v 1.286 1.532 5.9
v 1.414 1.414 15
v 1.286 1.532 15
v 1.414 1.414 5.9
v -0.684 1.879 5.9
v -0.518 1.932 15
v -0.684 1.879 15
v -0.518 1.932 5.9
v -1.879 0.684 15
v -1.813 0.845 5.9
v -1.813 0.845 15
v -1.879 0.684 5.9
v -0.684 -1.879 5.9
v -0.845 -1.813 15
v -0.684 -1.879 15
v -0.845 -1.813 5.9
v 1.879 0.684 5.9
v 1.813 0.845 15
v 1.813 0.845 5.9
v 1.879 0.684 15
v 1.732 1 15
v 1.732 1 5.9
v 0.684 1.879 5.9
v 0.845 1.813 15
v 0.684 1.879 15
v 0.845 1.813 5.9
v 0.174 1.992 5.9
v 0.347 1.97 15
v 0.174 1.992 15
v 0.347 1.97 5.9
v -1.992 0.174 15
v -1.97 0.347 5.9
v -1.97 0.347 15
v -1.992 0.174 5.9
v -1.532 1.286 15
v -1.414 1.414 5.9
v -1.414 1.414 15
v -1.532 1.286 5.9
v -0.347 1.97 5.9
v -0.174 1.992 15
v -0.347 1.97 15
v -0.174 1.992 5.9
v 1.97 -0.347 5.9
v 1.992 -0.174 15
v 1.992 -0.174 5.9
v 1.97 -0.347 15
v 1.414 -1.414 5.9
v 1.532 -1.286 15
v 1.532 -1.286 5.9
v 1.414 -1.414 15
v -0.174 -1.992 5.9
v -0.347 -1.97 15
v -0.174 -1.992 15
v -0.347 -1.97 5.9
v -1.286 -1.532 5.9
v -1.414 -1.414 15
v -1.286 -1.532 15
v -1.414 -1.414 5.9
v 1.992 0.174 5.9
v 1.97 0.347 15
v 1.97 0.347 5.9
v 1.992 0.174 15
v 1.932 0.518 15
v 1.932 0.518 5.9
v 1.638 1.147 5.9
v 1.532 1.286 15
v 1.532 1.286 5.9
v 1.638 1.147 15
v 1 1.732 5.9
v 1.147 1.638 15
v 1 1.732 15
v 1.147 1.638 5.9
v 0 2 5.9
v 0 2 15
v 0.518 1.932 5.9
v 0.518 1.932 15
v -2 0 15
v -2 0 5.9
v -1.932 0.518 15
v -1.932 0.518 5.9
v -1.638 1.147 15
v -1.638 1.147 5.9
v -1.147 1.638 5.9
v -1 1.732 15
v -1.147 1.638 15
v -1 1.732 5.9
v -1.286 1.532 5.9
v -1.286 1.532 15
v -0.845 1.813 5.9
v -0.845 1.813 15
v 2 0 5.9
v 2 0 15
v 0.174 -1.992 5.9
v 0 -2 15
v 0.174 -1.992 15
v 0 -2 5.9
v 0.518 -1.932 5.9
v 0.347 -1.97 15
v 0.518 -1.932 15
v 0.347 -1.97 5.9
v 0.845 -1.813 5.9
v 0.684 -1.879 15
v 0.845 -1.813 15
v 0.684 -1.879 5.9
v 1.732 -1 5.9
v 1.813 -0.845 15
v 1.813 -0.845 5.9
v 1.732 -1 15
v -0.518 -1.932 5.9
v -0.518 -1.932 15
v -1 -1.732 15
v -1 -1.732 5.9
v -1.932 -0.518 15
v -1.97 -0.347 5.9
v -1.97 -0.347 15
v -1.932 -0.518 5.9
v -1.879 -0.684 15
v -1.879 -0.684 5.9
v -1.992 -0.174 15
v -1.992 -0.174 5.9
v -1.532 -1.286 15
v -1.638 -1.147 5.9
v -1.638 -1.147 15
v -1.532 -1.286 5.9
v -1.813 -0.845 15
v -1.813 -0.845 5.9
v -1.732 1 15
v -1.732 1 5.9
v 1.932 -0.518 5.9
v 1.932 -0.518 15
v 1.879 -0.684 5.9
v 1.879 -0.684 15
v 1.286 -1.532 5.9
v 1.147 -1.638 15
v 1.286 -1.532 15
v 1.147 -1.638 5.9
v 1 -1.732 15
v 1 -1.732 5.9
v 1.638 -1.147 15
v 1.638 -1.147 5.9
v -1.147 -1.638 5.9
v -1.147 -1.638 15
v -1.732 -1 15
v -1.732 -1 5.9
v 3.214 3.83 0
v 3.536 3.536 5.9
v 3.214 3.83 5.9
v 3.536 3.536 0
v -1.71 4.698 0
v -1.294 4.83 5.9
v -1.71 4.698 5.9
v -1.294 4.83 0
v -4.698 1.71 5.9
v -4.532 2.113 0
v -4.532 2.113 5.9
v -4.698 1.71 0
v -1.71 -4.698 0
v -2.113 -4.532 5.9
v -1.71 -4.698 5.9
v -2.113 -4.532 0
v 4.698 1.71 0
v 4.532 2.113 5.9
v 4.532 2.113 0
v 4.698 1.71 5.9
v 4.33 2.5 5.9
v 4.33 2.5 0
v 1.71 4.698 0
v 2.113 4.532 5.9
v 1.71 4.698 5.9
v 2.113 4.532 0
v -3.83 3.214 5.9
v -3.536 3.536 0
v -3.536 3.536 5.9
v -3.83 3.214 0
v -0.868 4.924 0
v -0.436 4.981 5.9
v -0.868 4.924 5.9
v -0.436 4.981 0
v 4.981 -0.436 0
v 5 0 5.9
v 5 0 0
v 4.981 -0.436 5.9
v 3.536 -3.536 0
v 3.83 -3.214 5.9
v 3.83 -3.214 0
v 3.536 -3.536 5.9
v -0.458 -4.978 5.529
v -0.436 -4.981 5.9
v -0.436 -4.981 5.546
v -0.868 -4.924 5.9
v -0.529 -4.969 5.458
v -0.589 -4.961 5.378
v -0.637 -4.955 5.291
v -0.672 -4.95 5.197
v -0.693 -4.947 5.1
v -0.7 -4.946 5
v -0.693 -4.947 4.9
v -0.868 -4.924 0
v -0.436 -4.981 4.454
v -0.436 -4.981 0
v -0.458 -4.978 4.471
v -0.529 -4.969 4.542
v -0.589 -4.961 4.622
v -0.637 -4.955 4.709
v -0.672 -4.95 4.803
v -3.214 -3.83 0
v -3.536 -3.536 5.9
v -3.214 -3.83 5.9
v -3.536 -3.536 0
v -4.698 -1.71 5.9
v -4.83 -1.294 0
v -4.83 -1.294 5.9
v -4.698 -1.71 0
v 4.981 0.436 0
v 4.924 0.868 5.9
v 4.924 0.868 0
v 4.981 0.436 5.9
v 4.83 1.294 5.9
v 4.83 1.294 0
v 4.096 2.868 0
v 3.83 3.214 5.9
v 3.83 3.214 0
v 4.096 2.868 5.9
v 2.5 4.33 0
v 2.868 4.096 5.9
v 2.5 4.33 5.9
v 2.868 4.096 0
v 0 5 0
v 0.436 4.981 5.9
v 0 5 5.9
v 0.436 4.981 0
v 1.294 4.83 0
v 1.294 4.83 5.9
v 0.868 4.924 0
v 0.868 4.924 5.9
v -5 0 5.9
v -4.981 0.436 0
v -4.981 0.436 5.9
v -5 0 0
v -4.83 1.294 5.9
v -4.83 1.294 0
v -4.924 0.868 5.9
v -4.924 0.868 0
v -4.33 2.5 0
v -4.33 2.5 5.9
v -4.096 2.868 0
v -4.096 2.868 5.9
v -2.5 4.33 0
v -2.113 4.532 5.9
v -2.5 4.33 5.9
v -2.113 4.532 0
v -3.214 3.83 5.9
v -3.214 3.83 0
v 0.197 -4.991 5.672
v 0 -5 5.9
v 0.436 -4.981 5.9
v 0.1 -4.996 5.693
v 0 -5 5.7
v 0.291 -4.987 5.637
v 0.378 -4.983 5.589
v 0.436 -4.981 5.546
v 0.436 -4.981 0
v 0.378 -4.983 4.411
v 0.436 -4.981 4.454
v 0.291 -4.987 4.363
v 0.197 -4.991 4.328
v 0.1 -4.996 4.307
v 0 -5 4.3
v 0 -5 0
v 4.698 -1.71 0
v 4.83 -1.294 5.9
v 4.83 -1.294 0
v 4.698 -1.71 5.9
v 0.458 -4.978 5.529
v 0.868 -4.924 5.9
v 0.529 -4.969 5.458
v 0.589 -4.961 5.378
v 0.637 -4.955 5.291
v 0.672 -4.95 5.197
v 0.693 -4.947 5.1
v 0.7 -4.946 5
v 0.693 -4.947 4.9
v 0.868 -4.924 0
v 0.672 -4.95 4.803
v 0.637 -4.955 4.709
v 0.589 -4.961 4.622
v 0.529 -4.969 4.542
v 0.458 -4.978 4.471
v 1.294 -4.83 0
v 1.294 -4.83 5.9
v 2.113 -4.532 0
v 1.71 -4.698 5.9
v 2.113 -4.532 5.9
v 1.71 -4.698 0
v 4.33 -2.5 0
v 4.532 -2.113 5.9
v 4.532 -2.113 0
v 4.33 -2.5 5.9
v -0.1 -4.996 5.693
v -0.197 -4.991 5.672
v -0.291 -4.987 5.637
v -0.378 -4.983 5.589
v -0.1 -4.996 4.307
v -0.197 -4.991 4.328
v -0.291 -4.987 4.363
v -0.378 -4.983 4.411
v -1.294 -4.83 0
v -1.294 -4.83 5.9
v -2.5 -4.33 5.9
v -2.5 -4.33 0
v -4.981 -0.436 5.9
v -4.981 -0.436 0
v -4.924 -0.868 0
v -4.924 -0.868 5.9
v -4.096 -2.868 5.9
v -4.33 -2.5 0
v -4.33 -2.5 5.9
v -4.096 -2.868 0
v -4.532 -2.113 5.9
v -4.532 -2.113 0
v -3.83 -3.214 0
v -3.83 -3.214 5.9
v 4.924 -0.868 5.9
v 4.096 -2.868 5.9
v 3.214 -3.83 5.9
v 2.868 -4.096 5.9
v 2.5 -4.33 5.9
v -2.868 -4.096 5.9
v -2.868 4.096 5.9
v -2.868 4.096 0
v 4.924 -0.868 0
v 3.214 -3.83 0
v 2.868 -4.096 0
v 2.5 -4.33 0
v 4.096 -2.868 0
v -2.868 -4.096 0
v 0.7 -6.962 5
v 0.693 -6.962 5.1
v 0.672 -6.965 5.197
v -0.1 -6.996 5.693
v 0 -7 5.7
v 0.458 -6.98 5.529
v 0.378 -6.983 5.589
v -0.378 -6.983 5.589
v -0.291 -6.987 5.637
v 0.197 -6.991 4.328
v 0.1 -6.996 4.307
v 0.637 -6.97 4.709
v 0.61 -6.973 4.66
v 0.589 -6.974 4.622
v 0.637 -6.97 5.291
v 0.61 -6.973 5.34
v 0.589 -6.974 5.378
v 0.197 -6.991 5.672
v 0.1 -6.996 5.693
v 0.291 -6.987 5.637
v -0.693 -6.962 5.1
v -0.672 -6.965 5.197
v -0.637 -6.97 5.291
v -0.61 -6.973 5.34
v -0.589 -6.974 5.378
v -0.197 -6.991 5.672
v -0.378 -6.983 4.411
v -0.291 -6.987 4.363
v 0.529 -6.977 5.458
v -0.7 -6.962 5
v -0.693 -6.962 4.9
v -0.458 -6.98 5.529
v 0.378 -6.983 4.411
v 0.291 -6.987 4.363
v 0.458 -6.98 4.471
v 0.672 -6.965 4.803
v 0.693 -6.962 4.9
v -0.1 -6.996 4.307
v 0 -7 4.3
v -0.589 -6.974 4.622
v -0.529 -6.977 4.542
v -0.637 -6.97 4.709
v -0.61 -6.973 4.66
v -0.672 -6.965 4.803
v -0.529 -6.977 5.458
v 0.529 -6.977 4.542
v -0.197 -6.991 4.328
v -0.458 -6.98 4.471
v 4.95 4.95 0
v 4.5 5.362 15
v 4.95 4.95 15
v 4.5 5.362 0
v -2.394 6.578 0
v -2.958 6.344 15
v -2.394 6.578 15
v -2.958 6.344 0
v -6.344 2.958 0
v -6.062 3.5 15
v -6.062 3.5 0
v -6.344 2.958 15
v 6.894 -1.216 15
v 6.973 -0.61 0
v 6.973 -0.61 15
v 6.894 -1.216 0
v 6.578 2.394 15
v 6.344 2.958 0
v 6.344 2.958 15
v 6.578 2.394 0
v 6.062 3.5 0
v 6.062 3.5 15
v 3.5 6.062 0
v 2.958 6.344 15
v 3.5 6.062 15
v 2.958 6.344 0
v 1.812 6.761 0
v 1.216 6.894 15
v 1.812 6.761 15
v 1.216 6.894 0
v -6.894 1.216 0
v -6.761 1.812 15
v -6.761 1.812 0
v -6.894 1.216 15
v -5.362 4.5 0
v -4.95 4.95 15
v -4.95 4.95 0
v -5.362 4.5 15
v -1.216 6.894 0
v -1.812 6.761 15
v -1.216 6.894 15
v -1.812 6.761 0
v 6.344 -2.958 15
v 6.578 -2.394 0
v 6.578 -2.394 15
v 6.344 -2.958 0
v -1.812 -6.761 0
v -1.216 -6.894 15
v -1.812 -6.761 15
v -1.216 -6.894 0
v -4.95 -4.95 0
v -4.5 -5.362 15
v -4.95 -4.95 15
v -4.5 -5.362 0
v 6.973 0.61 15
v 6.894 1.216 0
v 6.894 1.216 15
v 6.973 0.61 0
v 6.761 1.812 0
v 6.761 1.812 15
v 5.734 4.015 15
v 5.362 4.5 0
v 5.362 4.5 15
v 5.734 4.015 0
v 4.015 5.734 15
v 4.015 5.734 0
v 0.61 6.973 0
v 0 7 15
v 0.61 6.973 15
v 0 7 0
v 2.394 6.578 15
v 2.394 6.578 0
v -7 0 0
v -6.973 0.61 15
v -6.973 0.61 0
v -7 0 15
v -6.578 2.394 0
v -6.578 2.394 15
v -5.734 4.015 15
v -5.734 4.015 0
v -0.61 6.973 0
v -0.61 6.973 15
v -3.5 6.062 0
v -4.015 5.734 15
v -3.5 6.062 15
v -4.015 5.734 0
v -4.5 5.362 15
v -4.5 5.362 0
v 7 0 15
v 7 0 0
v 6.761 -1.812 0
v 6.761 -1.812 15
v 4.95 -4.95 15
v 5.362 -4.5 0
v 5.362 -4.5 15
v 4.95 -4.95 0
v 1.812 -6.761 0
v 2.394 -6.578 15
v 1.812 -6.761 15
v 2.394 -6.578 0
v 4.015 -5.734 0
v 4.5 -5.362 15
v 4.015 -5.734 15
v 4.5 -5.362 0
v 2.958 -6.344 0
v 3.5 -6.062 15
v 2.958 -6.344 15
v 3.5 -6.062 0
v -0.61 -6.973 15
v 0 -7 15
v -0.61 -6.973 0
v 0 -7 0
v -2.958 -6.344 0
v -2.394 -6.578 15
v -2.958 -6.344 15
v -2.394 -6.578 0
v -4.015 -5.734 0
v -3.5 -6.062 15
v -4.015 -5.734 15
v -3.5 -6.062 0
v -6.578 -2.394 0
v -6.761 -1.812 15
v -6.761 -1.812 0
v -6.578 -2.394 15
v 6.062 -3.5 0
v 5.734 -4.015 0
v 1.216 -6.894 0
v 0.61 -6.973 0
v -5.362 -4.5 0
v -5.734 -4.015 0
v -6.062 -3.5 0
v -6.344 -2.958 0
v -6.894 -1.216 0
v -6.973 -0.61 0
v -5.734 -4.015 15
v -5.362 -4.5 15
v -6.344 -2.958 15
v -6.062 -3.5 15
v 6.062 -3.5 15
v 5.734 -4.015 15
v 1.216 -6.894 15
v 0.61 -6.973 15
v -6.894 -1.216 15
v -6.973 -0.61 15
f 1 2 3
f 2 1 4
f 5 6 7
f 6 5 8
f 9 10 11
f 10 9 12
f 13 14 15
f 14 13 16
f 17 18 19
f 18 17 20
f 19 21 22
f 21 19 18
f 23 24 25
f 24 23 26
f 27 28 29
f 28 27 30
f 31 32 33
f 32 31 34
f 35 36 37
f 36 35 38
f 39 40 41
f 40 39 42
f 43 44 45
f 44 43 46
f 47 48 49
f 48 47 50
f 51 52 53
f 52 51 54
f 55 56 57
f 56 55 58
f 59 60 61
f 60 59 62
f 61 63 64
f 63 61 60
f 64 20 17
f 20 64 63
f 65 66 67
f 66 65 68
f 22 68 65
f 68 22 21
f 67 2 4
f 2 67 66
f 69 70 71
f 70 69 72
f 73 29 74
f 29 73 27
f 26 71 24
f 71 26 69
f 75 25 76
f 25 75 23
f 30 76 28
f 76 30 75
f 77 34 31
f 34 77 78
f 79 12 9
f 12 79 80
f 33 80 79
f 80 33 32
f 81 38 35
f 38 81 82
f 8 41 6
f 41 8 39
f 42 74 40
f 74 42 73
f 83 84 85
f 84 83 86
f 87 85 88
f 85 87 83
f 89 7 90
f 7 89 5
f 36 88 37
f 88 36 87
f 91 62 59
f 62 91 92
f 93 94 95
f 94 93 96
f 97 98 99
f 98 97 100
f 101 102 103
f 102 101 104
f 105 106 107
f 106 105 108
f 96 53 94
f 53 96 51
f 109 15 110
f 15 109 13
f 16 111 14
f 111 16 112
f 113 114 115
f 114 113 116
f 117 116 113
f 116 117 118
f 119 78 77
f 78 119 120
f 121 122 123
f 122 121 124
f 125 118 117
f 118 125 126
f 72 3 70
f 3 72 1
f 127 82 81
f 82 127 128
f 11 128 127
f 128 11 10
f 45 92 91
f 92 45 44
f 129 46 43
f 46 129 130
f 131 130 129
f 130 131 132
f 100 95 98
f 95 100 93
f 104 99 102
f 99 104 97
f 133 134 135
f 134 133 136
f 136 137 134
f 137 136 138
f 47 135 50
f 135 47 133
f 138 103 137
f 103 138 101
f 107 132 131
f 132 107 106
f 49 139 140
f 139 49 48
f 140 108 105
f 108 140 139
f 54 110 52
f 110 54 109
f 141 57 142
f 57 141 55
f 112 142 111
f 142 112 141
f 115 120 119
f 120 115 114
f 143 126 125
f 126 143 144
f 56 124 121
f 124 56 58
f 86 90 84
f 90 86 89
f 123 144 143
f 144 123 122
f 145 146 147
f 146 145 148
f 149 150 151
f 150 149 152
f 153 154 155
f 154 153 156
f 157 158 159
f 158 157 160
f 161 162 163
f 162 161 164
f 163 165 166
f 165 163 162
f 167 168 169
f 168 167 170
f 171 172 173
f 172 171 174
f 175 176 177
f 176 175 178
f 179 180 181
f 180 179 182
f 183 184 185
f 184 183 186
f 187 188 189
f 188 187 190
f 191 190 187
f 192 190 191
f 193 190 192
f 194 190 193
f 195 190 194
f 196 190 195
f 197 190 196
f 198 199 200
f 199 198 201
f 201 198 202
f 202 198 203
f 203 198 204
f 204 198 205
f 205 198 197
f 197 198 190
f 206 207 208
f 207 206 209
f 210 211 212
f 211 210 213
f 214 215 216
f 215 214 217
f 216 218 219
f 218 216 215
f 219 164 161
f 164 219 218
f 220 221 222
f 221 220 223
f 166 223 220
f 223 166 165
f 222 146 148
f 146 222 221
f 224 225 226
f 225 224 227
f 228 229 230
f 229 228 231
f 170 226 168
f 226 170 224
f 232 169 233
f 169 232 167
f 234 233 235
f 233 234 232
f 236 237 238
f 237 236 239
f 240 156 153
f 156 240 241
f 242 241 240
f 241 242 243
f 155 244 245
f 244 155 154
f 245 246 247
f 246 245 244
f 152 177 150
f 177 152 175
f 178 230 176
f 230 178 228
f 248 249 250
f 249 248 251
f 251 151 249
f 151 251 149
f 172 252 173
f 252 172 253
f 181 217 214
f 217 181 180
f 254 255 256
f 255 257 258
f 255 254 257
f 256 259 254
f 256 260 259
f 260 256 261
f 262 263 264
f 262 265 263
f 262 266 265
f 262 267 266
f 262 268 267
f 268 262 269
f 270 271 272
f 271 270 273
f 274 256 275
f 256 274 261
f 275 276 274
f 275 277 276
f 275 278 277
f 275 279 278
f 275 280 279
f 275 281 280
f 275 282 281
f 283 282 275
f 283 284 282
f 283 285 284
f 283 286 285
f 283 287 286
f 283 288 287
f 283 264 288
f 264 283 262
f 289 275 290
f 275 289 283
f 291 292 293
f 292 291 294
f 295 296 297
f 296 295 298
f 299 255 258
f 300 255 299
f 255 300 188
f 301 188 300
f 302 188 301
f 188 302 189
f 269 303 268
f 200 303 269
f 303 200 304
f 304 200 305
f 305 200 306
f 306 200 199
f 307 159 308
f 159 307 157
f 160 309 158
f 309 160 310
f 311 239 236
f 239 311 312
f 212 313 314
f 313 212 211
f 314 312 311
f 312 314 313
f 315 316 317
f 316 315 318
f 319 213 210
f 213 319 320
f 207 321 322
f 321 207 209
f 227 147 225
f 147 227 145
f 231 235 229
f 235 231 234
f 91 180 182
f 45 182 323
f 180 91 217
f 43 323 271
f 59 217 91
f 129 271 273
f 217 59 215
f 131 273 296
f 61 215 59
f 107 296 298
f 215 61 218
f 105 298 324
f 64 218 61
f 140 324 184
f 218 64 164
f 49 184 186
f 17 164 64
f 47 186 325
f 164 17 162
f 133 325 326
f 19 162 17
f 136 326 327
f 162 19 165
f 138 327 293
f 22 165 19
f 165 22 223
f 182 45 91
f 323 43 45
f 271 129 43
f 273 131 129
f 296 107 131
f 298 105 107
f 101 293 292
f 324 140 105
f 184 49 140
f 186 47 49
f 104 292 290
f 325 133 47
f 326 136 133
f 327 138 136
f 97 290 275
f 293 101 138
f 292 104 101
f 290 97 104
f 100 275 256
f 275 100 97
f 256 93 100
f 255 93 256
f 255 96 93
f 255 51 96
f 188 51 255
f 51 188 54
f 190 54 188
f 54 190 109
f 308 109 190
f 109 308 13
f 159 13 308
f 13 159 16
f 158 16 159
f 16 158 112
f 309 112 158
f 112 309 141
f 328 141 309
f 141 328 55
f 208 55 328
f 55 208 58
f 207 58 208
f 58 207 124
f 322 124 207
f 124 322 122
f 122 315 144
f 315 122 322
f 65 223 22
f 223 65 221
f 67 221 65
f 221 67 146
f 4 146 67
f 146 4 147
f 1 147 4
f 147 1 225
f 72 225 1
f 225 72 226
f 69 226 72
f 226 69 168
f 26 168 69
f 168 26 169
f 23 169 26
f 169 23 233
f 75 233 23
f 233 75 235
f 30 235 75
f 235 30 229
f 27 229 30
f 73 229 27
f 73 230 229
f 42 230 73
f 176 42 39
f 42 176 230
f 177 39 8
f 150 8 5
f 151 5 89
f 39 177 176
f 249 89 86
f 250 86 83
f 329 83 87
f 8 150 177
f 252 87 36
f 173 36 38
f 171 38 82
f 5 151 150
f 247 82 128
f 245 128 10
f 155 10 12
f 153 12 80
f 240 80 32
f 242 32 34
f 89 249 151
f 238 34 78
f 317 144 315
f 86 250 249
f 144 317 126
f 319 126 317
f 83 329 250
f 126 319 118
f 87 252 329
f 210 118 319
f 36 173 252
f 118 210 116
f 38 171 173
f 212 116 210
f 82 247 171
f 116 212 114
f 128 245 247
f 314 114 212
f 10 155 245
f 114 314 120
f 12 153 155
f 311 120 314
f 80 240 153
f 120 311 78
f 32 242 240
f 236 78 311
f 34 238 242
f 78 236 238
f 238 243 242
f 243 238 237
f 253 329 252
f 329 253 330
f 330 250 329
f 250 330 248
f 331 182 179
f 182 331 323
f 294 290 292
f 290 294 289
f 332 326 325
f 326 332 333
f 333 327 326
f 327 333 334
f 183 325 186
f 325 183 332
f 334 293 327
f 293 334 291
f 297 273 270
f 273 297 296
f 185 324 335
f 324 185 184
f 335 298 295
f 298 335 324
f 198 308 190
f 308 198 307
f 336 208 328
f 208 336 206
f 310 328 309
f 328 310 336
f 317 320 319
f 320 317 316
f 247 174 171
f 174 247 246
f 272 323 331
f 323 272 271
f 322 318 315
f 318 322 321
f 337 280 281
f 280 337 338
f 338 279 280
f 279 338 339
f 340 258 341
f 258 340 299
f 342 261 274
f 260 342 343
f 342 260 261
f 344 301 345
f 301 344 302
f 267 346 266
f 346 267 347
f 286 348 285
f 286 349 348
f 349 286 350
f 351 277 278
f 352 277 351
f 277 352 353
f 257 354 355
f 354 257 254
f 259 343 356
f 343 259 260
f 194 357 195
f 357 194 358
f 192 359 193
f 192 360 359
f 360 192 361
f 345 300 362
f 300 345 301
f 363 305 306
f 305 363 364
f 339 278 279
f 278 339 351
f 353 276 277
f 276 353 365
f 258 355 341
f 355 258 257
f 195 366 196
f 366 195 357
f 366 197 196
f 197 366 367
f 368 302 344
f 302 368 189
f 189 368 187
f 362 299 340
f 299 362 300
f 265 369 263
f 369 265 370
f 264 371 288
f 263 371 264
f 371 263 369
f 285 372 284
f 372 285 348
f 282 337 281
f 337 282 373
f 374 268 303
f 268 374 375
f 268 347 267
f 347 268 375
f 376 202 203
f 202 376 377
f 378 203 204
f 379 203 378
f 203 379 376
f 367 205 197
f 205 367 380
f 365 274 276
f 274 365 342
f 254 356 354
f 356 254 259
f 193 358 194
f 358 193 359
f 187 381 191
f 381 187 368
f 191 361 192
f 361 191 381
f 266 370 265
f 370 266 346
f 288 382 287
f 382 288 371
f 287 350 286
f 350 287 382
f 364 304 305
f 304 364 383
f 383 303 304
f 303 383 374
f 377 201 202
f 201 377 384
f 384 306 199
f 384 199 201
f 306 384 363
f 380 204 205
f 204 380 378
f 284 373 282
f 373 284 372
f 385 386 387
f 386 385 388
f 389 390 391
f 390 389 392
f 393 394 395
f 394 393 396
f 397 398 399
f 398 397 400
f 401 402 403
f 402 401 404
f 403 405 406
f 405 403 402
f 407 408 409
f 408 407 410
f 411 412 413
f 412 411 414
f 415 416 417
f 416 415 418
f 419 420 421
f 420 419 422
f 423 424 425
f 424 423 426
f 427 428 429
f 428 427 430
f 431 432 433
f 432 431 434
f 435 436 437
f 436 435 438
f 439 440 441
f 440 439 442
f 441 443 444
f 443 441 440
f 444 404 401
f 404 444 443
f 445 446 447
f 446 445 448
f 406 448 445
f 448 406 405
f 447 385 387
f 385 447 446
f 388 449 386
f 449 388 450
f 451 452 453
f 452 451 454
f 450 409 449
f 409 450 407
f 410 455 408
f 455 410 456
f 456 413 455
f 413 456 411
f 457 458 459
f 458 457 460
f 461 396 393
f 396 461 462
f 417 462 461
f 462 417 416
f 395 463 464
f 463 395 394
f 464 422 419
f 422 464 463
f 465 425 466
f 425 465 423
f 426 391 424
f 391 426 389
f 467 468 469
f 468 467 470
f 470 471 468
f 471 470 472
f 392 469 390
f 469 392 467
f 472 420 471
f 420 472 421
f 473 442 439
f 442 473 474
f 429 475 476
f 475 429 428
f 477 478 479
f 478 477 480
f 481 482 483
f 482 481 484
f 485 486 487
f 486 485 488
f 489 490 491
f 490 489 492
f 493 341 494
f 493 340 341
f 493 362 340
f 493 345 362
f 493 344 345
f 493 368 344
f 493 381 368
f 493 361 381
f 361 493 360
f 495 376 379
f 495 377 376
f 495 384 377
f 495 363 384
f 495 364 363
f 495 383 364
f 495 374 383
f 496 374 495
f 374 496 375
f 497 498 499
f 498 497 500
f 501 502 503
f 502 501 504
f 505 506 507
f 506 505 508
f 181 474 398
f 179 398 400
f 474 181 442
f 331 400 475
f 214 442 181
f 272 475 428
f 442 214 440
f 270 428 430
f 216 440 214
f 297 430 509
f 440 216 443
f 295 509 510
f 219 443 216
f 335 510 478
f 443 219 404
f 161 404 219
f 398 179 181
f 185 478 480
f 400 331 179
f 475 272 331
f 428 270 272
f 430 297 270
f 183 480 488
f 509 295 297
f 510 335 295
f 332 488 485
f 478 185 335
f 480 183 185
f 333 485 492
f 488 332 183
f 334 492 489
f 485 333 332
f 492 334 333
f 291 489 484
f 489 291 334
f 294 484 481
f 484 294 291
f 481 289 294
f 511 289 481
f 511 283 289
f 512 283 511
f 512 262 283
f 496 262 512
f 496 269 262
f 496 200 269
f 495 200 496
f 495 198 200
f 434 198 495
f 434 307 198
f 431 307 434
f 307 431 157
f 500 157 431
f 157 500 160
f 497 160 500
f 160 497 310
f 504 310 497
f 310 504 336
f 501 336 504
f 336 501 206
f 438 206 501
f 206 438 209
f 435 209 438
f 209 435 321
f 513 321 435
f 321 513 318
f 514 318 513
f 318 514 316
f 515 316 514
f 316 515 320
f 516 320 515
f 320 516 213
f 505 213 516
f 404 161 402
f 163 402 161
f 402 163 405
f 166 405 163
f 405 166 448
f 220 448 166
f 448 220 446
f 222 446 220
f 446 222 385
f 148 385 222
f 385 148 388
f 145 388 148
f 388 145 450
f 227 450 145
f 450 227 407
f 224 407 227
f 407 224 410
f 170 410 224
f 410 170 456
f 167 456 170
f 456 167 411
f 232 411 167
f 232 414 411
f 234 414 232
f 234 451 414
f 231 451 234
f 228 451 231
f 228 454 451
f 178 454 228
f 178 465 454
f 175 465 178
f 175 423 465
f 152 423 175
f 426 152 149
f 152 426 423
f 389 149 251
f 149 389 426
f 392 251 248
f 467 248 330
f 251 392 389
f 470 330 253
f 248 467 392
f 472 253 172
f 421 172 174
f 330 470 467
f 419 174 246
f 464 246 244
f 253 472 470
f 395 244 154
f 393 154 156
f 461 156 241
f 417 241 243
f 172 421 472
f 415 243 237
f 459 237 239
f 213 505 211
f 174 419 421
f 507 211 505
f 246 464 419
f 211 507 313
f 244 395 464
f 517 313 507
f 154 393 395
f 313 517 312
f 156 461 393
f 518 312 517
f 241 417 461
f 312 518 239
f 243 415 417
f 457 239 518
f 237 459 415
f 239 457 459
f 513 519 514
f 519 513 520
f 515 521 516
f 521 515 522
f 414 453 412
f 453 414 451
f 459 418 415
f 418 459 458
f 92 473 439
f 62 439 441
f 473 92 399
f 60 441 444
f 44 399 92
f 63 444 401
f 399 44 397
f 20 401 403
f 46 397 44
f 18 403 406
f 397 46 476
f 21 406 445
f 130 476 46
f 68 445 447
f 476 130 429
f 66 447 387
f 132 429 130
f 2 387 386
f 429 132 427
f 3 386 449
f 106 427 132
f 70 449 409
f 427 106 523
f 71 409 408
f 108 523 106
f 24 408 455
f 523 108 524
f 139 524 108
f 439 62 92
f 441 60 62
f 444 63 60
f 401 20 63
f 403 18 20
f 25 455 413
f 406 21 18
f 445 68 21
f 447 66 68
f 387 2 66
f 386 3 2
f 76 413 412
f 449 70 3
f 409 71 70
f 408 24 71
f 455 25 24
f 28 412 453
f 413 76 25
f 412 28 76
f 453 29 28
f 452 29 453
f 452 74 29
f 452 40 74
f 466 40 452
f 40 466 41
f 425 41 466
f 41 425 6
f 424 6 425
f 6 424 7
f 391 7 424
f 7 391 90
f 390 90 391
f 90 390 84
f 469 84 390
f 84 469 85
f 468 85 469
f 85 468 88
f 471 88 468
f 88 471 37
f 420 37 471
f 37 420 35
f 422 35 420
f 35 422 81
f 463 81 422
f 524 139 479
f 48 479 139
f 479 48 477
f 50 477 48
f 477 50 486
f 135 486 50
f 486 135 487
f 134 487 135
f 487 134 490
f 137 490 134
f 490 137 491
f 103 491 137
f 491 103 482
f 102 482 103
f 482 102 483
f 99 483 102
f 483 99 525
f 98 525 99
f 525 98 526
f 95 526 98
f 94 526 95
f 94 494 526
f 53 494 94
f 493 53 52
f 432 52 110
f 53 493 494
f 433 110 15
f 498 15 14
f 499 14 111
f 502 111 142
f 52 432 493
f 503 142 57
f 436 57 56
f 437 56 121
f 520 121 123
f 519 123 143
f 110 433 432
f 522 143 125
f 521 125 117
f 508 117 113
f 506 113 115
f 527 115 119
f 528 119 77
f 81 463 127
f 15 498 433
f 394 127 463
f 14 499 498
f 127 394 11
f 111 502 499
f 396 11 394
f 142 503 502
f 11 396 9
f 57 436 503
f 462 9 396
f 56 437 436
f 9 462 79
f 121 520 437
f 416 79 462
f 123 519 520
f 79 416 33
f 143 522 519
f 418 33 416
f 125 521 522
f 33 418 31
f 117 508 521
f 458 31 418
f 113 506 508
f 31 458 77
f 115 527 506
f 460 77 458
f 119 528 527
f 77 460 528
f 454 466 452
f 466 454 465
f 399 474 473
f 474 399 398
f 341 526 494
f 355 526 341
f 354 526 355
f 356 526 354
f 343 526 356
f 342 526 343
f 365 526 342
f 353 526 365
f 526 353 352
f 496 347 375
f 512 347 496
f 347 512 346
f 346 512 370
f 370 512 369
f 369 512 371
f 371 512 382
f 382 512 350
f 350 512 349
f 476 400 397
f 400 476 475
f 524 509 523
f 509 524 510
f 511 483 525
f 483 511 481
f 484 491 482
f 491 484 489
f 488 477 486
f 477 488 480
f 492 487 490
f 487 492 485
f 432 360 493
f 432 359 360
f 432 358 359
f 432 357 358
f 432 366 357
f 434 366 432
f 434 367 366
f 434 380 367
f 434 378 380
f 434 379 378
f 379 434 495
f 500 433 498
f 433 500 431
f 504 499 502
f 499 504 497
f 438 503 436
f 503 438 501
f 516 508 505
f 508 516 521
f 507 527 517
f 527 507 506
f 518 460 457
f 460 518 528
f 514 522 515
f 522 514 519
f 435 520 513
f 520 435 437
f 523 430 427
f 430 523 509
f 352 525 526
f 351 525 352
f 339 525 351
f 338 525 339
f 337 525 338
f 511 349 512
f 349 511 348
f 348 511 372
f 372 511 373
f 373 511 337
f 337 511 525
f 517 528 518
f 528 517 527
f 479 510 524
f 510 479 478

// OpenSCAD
$fa=5; $fs=0.1;

difference(){
	union(){
		cylinder(r=7, h=15);
	}

	union(){
		translate([0, 0,-0.1]) cylinder(r=2, h=15.2);
		translate([0, 0,-0.1]) cylinder(r=5, h=6);
        
        translate([0,0,5]) rotate([90,0,0]) cylinder(r=0.7, h=100);
	}
}
